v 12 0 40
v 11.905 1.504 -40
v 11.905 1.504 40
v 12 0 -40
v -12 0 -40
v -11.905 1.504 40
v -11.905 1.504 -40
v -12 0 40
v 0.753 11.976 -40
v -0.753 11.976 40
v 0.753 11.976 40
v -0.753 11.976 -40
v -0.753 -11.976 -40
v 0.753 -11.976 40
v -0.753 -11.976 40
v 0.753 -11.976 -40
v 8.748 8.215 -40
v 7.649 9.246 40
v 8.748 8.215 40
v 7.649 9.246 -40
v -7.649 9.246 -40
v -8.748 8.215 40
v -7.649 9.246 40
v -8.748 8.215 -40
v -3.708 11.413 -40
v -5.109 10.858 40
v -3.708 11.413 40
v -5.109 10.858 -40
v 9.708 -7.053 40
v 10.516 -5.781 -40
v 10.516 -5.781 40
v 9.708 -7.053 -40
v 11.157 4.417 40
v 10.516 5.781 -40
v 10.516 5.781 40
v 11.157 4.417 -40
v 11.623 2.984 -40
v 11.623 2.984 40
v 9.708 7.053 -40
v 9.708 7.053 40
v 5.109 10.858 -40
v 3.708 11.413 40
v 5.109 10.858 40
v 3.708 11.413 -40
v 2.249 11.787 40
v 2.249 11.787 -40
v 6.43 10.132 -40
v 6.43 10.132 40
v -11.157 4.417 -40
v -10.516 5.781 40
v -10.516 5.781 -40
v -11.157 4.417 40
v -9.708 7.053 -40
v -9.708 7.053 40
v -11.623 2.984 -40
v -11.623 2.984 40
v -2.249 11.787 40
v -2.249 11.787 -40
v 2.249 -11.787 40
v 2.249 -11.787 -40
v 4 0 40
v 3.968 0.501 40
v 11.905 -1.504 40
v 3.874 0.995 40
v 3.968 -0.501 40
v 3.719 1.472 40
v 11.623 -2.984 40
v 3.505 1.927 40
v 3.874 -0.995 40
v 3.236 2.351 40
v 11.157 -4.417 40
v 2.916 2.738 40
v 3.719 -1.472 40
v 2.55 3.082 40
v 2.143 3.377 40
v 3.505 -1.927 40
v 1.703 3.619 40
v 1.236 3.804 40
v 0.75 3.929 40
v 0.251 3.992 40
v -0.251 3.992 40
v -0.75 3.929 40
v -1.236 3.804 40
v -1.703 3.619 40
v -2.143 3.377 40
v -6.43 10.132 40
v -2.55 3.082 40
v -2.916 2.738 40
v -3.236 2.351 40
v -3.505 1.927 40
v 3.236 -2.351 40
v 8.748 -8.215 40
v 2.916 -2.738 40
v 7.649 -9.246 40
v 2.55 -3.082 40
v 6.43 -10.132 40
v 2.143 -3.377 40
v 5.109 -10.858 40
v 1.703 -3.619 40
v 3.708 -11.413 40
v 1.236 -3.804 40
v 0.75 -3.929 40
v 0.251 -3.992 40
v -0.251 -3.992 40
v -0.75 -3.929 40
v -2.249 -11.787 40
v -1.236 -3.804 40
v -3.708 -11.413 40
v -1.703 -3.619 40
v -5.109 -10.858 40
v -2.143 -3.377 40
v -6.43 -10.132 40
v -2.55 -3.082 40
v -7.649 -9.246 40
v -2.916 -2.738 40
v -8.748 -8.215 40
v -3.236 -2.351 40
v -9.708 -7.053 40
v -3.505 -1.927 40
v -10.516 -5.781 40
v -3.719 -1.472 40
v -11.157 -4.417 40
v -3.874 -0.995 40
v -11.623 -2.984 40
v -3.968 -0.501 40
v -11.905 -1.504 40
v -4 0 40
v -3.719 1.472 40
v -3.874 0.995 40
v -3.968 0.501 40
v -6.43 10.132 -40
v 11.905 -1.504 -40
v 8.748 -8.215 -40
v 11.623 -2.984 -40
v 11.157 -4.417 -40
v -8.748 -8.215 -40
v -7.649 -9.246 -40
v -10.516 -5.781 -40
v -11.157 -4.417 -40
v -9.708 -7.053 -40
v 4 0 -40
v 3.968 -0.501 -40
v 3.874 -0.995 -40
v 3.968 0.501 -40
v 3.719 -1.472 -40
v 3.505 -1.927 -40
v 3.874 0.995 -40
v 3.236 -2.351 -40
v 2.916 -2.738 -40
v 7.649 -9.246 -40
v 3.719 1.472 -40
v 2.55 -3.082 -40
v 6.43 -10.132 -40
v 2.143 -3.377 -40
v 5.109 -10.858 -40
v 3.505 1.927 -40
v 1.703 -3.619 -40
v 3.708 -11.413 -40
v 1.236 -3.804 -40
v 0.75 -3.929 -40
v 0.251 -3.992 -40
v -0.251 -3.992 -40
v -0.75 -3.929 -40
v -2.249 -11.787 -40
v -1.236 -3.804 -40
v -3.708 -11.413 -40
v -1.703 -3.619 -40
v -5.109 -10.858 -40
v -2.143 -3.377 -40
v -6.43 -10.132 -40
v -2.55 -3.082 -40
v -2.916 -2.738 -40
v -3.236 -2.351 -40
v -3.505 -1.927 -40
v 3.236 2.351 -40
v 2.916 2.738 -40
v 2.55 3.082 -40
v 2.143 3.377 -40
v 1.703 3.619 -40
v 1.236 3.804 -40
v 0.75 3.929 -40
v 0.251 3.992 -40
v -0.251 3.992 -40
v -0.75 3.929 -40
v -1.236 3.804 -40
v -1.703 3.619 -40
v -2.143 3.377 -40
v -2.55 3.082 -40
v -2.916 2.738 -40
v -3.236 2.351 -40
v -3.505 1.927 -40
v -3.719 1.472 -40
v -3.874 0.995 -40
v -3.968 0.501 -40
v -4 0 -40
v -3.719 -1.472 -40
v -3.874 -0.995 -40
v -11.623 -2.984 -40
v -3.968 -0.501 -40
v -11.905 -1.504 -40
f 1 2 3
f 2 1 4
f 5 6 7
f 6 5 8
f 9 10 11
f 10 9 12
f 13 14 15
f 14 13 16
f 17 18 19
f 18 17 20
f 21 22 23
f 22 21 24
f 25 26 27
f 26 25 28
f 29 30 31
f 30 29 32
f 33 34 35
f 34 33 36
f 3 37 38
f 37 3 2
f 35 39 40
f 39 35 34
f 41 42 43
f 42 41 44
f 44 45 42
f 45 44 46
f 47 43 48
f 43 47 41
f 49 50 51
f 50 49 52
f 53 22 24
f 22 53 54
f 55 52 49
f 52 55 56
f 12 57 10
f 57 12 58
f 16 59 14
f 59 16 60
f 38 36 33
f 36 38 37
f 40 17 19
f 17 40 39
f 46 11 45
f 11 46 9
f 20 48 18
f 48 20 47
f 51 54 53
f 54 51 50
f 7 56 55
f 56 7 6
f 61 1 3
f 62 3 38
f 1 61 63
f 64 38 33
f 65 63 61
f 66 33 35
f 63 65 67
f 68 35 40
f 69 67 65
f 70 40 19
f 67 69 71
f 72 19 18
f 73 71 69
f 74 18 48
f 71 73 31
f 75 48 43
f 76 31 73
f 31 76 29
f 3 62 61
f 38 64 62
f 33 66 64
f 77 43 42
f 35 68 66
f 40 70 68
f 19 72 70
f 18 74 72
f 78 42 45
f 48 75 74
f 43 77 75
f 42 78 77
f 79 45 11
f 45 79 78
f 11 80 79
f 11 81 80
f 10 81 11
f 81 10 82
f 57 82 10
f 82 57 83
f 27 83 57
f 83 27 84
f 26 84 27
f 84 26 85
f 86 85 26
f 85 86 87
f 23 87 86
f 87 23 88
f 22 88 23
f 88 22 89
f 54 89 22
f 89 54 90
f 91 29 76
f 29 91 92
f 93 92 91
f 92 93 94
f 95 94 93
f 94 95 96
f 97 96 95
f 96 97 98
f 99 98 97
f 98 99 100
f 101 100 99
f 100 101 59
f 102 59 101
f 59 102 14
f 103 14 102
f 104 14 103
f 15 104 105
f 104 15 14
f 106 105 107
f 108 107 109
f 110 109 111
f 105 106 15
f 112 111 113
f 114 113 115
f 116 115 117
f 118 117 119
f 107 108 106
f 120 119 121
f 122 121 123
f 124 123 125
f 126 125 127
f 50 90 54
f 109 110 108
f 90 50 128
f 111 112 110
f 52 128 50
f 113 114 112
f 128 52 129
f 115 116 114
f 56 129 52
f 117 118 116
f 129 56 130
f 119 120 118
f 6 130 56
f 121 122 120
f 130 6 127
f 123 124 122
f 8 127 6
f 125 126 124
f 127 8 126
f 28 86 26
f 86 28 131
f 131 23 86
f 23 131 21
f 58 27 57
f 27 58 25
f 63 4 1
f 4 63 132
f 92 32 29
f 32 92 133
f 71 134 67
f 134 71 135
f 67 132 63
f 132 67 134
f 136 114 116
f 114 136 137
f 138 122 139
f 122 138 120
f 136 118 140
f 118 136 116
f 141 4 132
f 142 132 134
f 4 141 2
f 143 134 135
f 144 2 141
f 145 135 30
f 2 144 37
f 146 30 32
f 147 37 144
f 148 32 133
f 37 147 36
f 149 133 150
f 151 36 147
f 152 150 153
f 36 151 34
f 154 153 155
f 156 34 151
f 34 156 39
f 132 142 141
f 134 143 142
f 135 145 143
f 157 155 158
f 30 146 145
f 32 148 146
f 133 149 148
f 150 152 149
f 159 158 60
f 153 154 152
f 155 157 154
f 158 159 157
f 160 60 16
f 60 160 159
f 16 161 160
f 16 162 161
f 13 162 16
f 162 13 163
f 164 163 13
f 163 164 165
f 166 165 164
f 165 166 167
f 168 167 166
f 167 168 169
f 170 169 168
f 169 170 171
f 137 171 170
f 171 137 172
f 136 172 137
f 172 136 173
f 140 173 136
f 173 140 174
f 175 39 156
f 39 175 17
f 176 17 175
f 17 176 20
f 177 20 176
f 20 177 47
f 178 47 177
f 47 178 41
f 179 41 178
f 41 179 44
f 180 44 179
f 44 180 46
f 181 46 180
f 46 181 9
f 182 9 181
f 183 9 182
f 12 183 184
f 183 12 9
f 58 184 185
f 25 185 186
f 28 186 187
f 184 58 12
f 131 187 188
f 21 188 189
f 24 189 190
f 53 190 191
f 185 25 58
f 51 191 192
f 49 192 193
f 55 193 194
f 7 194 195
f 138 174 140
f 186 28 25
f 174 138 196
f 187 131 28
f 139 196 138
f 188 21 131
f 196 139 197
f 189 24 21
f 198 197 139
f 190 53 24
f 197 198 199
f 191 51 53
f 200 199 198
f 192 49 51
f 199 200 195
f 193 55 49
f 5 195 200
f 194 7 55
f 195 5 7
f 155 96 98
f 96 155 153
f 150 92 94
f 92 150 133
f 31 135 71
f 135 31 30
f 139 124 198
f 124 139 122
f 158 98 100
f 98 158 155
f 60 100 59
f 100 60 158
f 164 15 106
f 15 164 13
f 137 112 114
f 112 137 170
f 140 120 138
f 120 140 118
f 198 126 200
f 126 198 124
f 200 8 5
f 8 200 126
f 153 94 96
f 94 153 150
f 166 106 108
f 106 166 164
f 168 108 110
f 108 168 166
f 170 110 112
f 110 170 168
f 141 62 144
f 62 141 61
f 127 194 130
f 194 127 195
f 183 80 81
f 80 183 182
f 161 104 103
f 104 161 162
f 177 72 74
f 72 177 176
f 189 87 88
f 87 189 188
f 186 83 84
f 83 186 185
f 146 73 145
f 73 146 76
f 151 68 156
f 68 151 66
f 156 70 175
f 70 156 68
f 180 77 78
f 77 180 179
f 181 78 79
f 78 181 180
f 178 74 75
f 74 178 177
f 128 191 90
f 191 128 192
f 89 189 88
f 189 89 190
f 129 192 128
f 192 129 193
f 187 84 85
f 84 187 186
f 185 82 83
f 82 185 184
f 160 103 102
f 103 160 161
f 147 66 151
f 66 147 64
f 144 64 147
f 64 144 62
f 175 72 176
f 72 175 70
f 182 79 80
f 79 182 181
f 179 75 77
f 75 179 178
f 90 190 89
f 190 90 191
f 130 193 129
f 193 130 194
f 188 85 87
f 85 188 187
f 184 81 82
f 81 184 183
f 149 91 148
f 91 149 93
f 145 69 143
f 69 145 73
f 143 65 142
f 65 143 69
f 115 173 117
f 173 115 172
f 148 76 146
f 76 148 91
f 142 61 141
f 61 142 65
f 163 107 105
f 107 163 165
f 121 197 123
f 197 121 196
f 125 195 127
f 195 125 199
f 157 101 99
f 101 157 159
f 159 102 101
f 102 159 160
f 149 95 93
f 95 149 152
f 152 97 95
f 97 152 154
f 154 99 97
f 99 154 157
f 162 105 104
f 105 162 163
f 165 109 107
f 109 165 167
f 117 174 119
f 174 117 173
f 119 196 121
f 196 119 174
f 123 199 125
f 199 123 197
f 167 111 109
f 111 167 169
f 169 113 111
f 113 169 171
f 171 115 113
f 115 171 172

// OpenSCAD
$fn = 50;


difference() {
	union() {
		translate(v = [0, 0, -40.0000000000]) {
			cylinder(h = 80, r = 12.0000000000);
		}
	}
	union() {
		translate(v = [0, 0, -100.0000000000]) {
			cylinder(h = 200, r = 4);
		}
	}
}
